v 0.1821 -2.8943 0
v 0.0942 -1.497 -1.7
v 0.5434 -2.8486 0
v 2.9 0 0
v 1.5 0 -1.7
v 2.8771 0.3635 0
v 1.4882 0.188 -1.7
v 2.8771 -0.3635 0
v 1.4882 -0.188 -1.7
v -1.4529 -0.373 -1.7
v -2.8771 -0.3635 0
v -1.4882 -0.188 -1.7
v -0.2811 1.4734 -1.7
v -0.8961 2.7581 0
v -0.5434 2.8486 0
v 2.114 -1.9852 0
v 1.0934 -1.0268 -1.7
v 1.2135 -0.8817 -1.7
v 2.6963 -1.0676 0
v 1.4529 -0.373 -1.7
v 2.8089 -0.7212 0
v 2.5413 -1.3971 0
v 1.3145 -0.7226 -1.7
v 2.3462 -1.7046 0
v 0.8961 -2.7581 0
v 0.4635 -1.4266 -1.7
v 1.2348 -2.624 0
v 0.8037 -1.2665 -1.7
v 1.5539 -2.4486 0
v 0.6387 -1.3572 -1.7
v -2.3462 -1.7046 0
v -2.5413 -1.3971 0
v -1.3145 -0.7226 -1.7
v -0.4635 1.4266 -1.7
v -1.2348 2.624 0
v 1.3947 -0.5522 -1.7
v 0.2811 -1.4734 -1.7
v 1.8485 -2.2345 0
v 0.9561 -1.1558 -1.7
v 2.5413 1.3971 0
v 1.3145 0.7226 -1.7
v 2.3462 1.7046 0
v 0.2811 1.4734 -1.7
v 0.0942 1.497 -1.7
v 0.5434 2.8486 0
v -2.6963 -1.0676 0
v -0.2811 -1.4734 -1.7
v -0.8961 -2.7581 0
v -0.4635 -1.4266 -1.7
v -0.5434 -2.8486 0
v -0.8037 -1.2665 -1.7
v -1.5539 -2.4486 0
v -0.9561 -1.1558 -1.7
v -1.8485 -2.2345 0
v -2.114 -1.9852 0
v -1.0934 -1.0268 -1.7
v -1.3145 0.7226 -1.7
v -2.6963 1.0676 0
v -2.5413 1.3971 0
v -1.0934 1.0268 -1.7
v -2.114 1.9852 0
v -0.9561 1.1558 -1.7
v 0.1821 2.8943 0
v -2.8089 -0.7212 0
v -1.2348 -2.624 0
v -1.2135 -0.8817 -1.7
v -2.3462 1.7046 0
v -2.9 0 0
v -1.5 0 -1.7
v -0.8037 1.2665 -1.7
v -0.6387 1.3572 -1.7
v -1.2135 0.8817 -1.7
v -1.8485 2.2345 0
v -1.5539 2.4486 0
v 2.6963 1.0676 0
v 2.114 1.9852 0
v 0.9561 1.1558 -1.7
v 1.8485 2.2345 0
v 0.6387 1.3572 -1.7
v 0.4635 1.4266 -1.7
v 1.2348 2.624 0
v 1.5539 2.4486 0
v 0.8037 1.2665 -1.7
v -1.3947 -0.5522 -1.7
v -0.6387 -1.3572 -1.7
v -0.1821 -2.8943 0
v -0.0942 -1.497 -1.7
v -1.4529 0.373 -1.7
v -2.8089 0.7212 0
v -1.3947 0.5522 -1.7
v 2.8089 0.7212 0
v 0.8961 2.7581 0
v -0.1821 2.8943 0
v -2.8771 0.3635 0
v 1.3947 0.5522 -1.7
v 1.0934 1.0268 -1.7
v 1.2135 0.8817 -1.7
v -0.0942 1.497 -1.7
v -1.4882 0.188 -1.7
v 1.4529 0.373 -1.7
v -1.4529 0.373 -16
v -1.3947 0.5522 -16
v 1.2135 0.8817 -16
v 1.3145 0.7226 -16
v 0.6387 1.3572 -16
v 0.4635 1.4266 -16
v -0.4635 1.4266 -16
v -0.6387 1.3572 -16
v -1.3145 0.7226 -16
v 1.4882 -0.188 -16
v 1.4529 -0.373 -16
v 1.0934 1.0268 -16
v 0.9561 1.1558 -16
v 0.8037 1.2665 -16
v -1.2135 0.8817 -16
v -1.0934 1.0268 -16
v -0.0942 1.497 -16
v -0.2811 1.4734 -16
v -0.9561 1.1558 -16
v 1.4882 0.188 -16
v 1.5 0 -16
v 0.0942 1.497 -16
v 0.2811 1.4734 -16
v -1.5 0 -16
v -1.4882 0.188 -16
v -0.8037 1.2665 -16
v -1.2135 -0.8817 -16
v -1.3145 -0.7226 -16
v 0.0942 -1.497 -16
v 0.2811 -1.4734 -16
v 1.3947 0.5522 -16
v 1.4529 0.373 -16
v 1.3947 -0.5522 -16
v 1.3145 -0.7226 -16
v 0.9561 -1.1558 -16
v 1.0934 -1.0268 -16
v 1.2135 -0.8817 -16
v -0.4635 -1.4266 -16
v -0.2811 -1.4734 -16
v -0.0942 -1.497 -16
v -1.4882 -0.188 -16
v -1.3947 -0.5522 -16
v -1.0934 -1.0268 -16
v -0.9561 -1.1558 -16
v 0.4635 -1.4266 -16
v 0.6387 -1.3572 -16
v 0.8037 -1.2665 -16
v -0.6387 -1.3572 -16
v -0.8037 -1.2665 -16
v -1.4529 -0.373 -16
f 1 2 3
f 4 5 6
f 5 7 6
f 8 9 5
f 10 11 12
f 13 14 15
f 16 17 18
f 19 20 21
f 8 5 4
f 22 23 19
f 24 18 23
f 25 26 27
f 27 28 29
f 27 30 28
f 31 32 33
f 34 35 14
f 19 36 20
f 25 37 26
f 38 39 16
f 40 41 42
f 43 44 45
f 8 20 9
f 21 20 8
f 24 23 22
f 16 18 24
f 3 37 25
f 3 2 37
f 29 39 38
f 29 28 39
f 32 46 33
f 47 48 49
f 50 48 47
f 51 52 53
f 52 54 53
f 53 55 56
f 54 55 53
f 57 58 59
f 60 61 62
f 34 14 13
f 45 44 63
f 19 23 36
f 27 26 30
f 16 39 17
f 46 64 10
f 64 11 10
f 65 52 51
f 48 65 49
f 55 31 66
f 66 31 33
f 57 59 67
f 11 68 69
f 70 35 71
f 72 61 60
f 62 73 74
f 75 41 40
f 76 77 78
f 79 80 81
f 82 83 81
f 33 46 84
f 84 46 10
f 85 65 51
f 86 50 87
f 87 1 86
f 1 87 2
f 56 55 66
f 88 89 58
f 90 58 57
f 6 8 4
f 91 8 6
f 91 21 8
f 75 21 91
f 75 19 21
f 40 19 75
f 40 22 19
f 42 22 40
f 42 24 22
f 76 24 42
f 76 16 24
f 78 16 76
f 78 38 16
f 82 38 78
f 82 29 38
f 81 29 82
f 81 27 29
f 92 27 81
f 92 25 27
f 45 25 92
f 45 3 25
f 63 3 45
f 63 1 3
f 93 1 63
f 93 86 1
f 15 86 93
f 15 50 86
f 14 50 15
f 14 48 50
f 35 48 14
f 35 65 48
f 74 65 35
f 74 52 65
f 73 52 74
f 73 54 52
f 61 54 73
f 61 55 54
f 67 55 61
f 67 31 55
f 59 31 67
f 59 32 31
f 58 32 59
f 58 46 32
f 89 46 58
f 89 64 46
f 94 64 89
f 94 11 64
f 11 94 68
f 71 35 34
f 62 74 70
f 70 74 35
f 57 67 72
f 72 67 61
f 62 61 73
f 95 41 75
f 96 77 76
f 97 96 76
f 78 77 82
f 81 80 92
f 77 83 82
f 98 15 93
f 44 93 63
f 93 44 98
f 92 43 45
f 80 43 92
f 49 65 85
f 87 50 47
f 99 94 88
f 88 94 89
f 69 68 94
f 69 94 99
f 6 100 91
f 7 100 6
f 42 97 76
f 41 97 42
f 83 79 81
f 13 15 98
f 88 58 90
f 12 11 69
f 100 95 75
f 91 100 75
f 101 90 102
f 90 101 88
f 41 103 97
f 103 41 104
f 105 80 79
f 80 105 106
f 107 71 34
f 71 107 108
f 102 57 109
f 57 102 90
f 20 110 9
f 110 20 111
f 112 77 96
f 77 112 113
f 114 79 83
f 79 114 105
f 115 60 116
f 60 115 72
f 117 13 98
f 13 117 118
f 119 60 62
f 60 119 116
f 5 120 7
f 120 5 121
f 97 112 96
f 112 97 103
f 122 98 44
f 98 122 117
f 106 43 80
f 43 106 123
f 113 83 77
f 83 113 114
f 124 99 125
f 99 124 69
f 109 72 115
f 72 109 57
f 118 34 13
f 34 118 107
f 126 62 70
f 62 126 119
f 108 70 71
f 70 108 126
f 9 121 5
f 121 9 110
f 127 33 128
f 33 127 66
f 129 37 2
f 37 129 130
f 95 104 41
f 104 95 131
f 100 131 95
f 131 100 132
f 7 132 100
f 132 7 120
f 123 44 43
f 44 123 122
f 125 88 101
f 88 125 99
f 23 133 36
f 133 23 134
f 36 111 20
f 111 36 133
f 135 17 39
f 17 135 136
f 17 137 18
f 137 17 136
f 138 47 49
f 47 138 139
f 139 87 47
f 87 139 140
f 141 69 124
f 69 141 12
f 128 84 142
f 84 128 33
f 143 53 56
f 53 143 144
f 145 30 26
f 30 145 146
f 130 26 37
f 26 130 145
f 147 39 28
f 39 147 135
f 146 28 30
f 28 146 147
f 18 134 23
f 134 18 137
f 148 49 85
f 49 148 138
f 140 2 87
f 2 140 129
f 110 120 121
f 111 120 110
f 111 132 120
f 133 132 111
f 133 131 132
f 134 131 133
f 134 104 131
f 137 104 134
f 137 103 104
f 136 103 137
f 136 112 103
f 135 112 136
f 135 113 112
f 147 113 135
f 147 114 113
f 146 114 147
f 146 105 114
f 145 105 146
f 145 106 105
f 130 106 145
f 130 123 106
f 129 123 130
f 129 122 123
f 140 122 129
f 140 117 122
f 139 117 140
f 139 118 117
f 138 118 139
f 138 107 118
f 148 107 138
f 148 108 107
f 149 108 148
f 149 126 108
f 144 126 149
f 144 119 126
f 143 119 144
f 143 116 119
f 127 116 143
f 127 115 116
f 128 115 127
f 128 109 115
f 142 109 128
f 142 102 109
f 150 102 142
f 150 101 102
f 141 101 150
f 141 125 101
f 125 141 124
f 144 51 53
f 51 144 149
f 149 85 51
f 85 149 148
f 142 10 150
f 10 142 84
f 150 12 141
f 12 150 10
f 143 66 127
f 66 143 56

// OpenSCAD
// Generated by SolidPython 1.1.3 on 2023-03-13 21:06:12
$fn = 50;


difference() {
	union() {
		translate(v = [0, 0, -1.7000000000]) {
			rotate(a = [0, 0, 0]) {
				cylinder(h = 1.7000000000, r1 = 1.5000000000, r2 = 2.9000000000);
			}
		}
		translate(v = [0, 0, -16]) {
			rotate(a = [0, 0, 0]) {
				cylinder(h = 16, r = 1.5000000000);
			}
		}
	}
	union();
}
/***********************************************
*********      SolidPython code:      **********
************************************************
 
from solid import *
import os
import subprocess

import oomB

import opsc_library_gen

mode = "laser"
#mode = "3d_print"

defined_objects = {}

radius_dict = {}
countersunk_dict = {}


def set_mode(m):
    global mode
    mode = m
    radius_dict['M6'] = 6.5/2
    radius_dict['M3'] = 3.3/2
    if mode == "laser":
        radius_dict['M6'] = 6/2
        radius_dict['M3'] = 3/2

    countersunk_dict['M3'] = {}
    countersunk_dict['M3']['little_rad'] = radius_dict['M3']
    countersunk_dict['M3']['big_rad'] = (5.5+0.6)/2
    if mode == "laser":
        countersunk_dict['M3']['big_rad'] = (4.75+0.6)/2
        countersunk_dict['M3']['little_rad'] = (4.75+0.6)/2

    countersunk_dict['M3']['height'] = 1.7


def opsc_make_object(filename, objects, save_type="none",resolution=50, layers = 1, tilediff = 200, mode="laser", overwrite=True):
    if overwrite or not os.path.exists(filename):
        set_mode(mode)
        save_type = save_type.lower()
        os.makedirs(os.path.dirname(filename), exist_ok=True)
        final_object = opsc_get_object(objects, mode = mode)
        # Save the final object to the specified filename    
        scad_render_to_file(final_object, filename, file_header='$fn = %s;' % resolution, include_orig_code=True)
        if save_type == "all":
            saveToAll(filename)
        elif save_type == "dxf":
            saveToDxf(filename)
        if mode == "laser":
            filename_laser = filename.replace(".scad","-flat.scad")
            scad_render_to_file(getLaser(final_object, layers=layers, tilediff=tilediff), filename_laser, file_header='$fn = %s;' % resolution, include_orig_code=True)
            if save_type == "all":
                saveToAll(filename_laser)
            elif save_type == "dxf":
                saveToDxf(filename_laser)


def opsc_get_object(objects, mode = "laser"):
    # Create the solidpython objects only include the positive objects and if they don't have inclusion or their inclusion is either all or mode
    # Initialize an empty list to store the results
    positive_objects = []

    # Iterate over the "objects" list
    for obj in objects:
        # Check if the current object has a "type" key with a value of "positive"
        if obj['type'] == 'positive':
            # Check if the current object has an "inclusion" key and its value matches "mode",
            # or if the current object does not have an "inclusion" key at all
            if not 'inclusion' in obj or obj['inclusion'] == "all" or obj['inclusion'] == mode:
                # Call the "get_opsc_item" function with the current object as an argument
                opsc_item = get_opsc_item(obj)
                # Add the result to the "positive_objects" list
                positive_objects.append(opsc_item)
# Initialize an empty list to store the results
    negative_objects = []

    # Iterate over the "objects" list
    for obj in objects:
        # Check if the current object has a "type" key with a value of "negative"
        if obj['type'] == 'negative':
            # Check if the current object has an "inclusion" key and its value matches "mode",
            # or if the current object does not have an "inclusion" key at all
            if not 'inclusion' in obj or obj['inclusion'] == "all" or obj['inclusion'] == mode:
                # Call the "get_opsc_item" function with the current object as an argument
                opsc_item = get_opsc_item(obj)
                # Add the result to the "negative_objects" list
                negative_objects.append(opsc_item)
    
    #positive_objects = [get_opsc_item(obj) for obj in objects if obj['type'] == 'positive']
    #negative_objects = [get_opsc_item(obj) for obj in objects if obj['type'] == 'negative']
    # Union the positive objects
    positive_object = union()(*positive_objects)
    # Union the negative objects
    negative_object = union()(*negative_objects)
    # Create the final object by subtracting the negative objects from the positive objects
    return difference()(positive_object, negative_object)

def get_opsc_item(params):
    # A dictionary to map radius string values to numerical values
    #radius_dict = {'small': 5, 'medium': 10, 'large': 15}
    # An array of function names for basic shapes
    basic_shapes = ['cube', 'sphere', 'cylinder']
    
    # An array of function names for other shapes
    other_shapes = ['hole', 'slot', 'rounded_rectangle', 'countersunk', 'polyg']
    


    # Convert radius to r if present, and remove radius from the params dictionary
    if 'radius' in params:
        if isinstance(params['radius'], str):
            # Use the radius_dict to map the radius string value to a numerical value
            params['r'] = radius_dict[params['radius']]
        else:
            params['r'] = params['radius']
        del params['radius']
    

    # Check if the object type is a basic shape
    if params['shape'] in basic_shapes:
        # Remove shape and unexpected dictionary values
        allowed_keys = {'size', 'r', 'r1', 'r2', 'd', 'h', 'rw', 'rh', 'dw', 'dh'}
        shape_params = {k: v for k, v in params.items() if k in allowed_keys}

        #params['m'] = "#"
        ###split for adding modifier
        try:
            m = params['m']
            func = globals()[params['shape']]
            return_value = get_opsc_transform(params,func(**shape_params))
            return_value = (return_value).set_modifier(m)
            return return_value
        except KeyError as e:
            return get_opsc_transform(params,globals()[params['shape']](**shape_params))
        
    elif params['shape'] == 'polygon':
        # Remove shape and unexpected dictionary values
        h  = params['height']
        allowed_keys = {'points'}
        shape_params = {k: v for k, v in params.items() if k in allowed_keys}

        # Call the corresponding function for the shape parameter, using ** notation to pass the shape_params dictionary as keyword arguments
        params["rot"] = [0,0,0]        
        try:
            m = params['m']
            func = globals()[params['shape']]
            return_value = get_opsc_transform(params,linear_extrude(h)(globals()[params['shape']](**shape_params)))
            return_value = (return_value).set_modifier(m)
            return return_value
        except KeyError as e:
            return_value = get_opsc_transform(params,linear_extrude(h)(globals()[params['shape']](**shape_params)))
            return_value = (return_value)
            return return_value


    # If the object type is not a basic shape, check if it's a defined object or one of the other shapes
    elif params['shape'] in other_shapes:
        # Call the corresponding function for the shape parameter, passing the params dictionary as an argument
        p2 = copy.deepcopy(params)
        p2["pos"] = [0,0,0]
        return get_opsc_transform(params,globals()[params['shape']](p2))
    
    # If the object is not a basic shape or a defined object, try to import it from a .scad file
    else:
        obj = defined_objects[params['shape']]
        return get_opsc_transform(params,obj)

def get_opsc_transform(params, solid_obj):
    # Rotate the object based on the 'rot' field in the params dictionary, or the 'rotX', 'rotY', and 'rotZ' fields if 'rot' is not present
    rot = params.get('rot', [])
    if rot:
        rotX, rotY, rotZ = rot
    else:
        rotX = params.get('rotX', 0)
        rotY = params.get('rotY', 0)
        rotZ = params.get('rotZ', 0)
    solid_obj = rotate([rotX, rotY, rotZ])(solid_obj)

    # Translate the object based on the 'pos' field in the params dictionary, or the 'x', 'y', and 'z' fields if 'pos' is not present
    pos = params.get('pos', [])
    if pos:
        x, y, z = pos
    else:
        x = params.get('x', 0)
        y = params.get('y', 0)
        z = params.get('z', 0)
    solid_obj = translate([x, y, z])(solid_obj)
    return solid_obj


import random

def opsc_easy_array(type, shape, repeats, pos_start, shift_arr, **kwargs):
    for i in range(0,3):
        repeats.append(1)
        pos_start.append(0)
        shift_arr.append(0)
    return_objects = []

    for x in range(0,repeats[0]):
        for y in range(0,repeats[1]):
            for z in range(0,repeats[2]):
                return_objects.append(opsc_easy(type, shape, pos=[pos_start[0]+x*shift_arr[0],pos_start[1]+y*shift_arr[1],pos_start[2]+z*shift_arr[2]], **kwargs))
    return return_objects                



def opsc_easy(type, shape, **kwargs):
    obj = {
        'type': type,
        'shape': shape
    }
    for param in ['size', 'r', 'r1', 'r2', 'd', 'h', 'rw', 'rh', 'dw', 'dh', 'pos', 'x', 'y', 'z', 'rot', 'rotX', 'rotY', 'rotZ', "w", "inclusion", 'sides', 'height', "m"]:
        if param in kwargs:
            obj[param] = kwargs[param]
    return obj

def hole(params):
    p2 = copy.deepcopy(params)  
    # Check if the radius is a string and replace it with the corresponding value from the dictionary
    if isinstance(p2['r'], str):
        p2['r'] = radius_dict[p2['r']]
    
    # Set the height to 100 if not specified
    if 'h' not in p2:
        p2['h'] = 100
        p2["pos"] = [0,0,-50]
    p2["center"] = True
    # Create the cylinder object
    p2["shape"] = "cylinder"
    p2["type"] = "positive"

    return get_opsc_item(p2)

import copy

def countersunk(params):
    p2 = copy.deepcopy(params)
    counter_rad = p2['r']
    p2['r'] = radius_dict[p2['r']]
    hp = copy.deepcopy(p2)
    hp["type"] = "positive"
    hp["shape"] = "hole"
    del hp["rot"]
    hol = get_opsc_item(hp)
    
    cp = copy.deepcopy(p2)
    cp["h"] = countersunk_dict[counter_rad]["height"]
    cp["r2"] = countersunk_dict[counter_rad]["little_rad"]
    cp["r1"] = countersunk_dict[counter_rad]["big_rad"]
    del cp["r"]
    del cp["rot"]
    cp["type"] = "positive"
    cp["shape"] = "cylinder"
    cp["pos"] = [0,0,0]

    top = get_opsc_item(cp)
    return union()(hol,top)



def slot(params):  
    p2 = copy.deepcopy(params) 
    if isinstance(p2['r'], str):
        p2['r'] = radius_dict[p2['r']]
    p2["type"] = "positive"
    p2["shape"] = "hole"
    del p2["rot"]
    p2["pos"] = [0,0,0]
    left = copy.deepcopy(p2)
    right = copy.deepcopy(p2)
    left["pos"][0] = p2["w"] / 2 - p2["r"] 
    
    right["pos"][0] = -p2["w"] / 2 + p2["r"] 
    pass
    leftObj = get_opsc_item(left)
    rightObj = get_opsc_item(right)
    return hull()(leftObj, rightObj)

def rounded_rectangle(params):   
    p2 = copy.deepcopy(params) 
    p2["h"] = p2["size"][2]
    p2["pos"] = p2.get("pos", [0, 0, 0]) 
    p2["type"] = "positive"
    p2["shape"] = "hole"
    p2["pos"] = [0,0,0]
    
    if 'rot' in p2:
        del p2["rot"]   
    if 'r' not in p2:
        p2["r"] = 5 
    tl = copy.deepcopy(p2)
    tr = copy.deepcopy(p2)
    bl = copy.deepcopy(p2)
    br = copy.deepcopy(p2)
    tl["pos"][0] = -(p2["size"][0] - p2["r"]*2)/2
    tl["pos"][1] = (p2["size"][1] - p2["r"]*2)/2
    tr["pos"][0] = (p2["size"][0] - p2["r"]*2)/2
    tr["pos"][1] = (p2["size"][1] - p2["r"]*2)/2
    bl["pos"][0] = -(p2["size"][0] - p2["r"]*2)/2
    bl["pos"][1] = -(p2["size"][1] - p2["r"]*2)/2
    br["pos"][0] = (p2["size"][0] - p2["r"]*2)/2
    br["pos"][1] = -(p2["size"][1] - p2["r"]*2)/2
    del tl["size"]
    del tr["size"]
    del bl["size"]
    del br["size"]
    tlo = get_opsc_item(tl)
    tro = get_opsc_item(tr)
    blo = get_opsc_item(bl)
    bro = get_opsc_item(br)    
    return hull()(tlo, tro, blo, bro)



def polyg(params):
    p2 = copy.deepcopy(params) 
    p2["type"] = "positive"
    p2["shape"] = "polygon"
    p2["pos"] = [0,0,0]
    sides = p2["sides"]
    radius = p2["r"]    
    angles = [i * 360 / sides for i in range(sides)]
    points = regular_polygon(sides, radius)
    
    p2["points"] = points
    return get_opsc_item(p2)

import math

def regular_polygon(num_sides, radius):
    # Calculate the angle between each side
    angle = 2 * math.pi / num_sides

    # Calculate the points of the polygon
    points = []
    for i in range(num_sides):
        x = radius * math.cos(i * angle)
        y = radius * math.sin(i * angle)
        points.append((x, y))
    return points

def import_scad_object(filename):
    # Import the .scad file and convert it to a solidpython object
    #filename = "parts"
    obj = import_scad(filename)
    return obj.main()



import os
import solid as solidpython

# A dictionary to store the defined objects


def load_scad_objects():
    opsc_library_gen.gen_library(defined_objects)

import random

def test(num_objects):
    objects = []
    for i in range(num_objects):
        # Choose a random shape
        #shape = random.choice(['cube', 'sphere', 'cylinder', 'hole', 'slot', "rounded_rectangle"])
        shape = random.choice(["rounded_rectangle"])

        # Choose a random type
        type = random.choice(['positive', 'negative'])
        
        # Create an empty object dictionary
        obj = {'shape': shape, 'type': type}
        
        # Set shape-specific parameters
        if obj['shape'] in ['cube']:
            obj['size'] =  [random.uniform(5, 15), random.uniform(5, 15), random.uniform(5, 15)]
        if obj['shape'] in ['rounded_rectangle']:
            obj['size'] =  [random.uniform(5, 15), random.uniform(5, 15), random.uniform(5, 15)]
            obj['r'] = random.uniform(0.5, 5)
        elif obj['shape'] == 'sphere':
            obj['r'] = random.uniform(5, 15)
        elif obj['shape'] in ['cylinder', 'hole']:
            obj['r'] = random.uniform(0.5, 5)
            obj['h'] = random.uniform(5, 15)
        elif obj['shape'] == 'slot':
            obj['r'] = random.uniform(0.5, 5)
            obj['h'] = random.uniform(5, 15)
            obj['w'] = random.uniform(5, 15)
        
        # Set a random position and rotation
        obj['pos'] = [random.uniform(-20, 20), random.uniform(-20, 20), random.uniform(-20, 20)]
        obj['rot'] = [random.uniform(-180, 180), random.uniform(-180, 180), random.uniform(-180, 180)]
        
        # Add the object to the list
        objects.append(obj)
    return objects

####### old file saving
def saveToAll(fileIn):
    saveToStl(fileIn)
    saveToDxf(fileIn)
    saveToPng(fileIn)
    saveToSvg(fileIn)

def saveToDxf(fileIn, fileOut="", copy_to_laser=True):
    if fileOut == "":
        fileOut = fileIn.replace(".scad",".dxf")
    saveToFile(fileIn, fileOut)


    
def saveToPng(fileIn, fileOut="",extra="--render"):
    if fileOut == "":
        fileOut = fileIn.replace(".scad",".png")
    saveToFile(fileIn, fileOut)

def saveToStl(fileIn, fileOut=""):
    if fileOut == "":
        fileOut = fileIn.replace(".scad",".stl")
    saveToFile(fileIn, fileOut)
    
def saveToSvg(fileIn, fileOut=""):
    if fileOut == "":
        fileOut = fileIn.replace(".scad",".svg")
    saveToFile(fileIn, fileOut)

def saveToFile(fileIn, fileOut,extra=""):
    #extra = extra + " --colorscheme Tomorrow"

    launchStr = 'openscad -o "' + fileOut + '"' + extra + ' "' + fileIn + '"'
    if ".png" in fileOut:
        launchStr = launchStr + " --render"
    print("            saveToFile launch string: " + launchStr)
    subprocess.run(launchStr)
    x=0

def getLaser(final_object,start=1.5,layers=1,thickness=3,tilediff=200):
        rv= []

        for x in range(layers):
            rv.append(translate([0,x*tilediff,0])(
                    projection()(
                        intersection()(translate([-500,-500,start+x*thickness])(cube(size=[1000,1000,0.1])),
                            final_object
                        )
                    )
            )
            )
            
        return union()(rv)

set_mode("laser")
load_scad_objects() 
 
************************************************/
